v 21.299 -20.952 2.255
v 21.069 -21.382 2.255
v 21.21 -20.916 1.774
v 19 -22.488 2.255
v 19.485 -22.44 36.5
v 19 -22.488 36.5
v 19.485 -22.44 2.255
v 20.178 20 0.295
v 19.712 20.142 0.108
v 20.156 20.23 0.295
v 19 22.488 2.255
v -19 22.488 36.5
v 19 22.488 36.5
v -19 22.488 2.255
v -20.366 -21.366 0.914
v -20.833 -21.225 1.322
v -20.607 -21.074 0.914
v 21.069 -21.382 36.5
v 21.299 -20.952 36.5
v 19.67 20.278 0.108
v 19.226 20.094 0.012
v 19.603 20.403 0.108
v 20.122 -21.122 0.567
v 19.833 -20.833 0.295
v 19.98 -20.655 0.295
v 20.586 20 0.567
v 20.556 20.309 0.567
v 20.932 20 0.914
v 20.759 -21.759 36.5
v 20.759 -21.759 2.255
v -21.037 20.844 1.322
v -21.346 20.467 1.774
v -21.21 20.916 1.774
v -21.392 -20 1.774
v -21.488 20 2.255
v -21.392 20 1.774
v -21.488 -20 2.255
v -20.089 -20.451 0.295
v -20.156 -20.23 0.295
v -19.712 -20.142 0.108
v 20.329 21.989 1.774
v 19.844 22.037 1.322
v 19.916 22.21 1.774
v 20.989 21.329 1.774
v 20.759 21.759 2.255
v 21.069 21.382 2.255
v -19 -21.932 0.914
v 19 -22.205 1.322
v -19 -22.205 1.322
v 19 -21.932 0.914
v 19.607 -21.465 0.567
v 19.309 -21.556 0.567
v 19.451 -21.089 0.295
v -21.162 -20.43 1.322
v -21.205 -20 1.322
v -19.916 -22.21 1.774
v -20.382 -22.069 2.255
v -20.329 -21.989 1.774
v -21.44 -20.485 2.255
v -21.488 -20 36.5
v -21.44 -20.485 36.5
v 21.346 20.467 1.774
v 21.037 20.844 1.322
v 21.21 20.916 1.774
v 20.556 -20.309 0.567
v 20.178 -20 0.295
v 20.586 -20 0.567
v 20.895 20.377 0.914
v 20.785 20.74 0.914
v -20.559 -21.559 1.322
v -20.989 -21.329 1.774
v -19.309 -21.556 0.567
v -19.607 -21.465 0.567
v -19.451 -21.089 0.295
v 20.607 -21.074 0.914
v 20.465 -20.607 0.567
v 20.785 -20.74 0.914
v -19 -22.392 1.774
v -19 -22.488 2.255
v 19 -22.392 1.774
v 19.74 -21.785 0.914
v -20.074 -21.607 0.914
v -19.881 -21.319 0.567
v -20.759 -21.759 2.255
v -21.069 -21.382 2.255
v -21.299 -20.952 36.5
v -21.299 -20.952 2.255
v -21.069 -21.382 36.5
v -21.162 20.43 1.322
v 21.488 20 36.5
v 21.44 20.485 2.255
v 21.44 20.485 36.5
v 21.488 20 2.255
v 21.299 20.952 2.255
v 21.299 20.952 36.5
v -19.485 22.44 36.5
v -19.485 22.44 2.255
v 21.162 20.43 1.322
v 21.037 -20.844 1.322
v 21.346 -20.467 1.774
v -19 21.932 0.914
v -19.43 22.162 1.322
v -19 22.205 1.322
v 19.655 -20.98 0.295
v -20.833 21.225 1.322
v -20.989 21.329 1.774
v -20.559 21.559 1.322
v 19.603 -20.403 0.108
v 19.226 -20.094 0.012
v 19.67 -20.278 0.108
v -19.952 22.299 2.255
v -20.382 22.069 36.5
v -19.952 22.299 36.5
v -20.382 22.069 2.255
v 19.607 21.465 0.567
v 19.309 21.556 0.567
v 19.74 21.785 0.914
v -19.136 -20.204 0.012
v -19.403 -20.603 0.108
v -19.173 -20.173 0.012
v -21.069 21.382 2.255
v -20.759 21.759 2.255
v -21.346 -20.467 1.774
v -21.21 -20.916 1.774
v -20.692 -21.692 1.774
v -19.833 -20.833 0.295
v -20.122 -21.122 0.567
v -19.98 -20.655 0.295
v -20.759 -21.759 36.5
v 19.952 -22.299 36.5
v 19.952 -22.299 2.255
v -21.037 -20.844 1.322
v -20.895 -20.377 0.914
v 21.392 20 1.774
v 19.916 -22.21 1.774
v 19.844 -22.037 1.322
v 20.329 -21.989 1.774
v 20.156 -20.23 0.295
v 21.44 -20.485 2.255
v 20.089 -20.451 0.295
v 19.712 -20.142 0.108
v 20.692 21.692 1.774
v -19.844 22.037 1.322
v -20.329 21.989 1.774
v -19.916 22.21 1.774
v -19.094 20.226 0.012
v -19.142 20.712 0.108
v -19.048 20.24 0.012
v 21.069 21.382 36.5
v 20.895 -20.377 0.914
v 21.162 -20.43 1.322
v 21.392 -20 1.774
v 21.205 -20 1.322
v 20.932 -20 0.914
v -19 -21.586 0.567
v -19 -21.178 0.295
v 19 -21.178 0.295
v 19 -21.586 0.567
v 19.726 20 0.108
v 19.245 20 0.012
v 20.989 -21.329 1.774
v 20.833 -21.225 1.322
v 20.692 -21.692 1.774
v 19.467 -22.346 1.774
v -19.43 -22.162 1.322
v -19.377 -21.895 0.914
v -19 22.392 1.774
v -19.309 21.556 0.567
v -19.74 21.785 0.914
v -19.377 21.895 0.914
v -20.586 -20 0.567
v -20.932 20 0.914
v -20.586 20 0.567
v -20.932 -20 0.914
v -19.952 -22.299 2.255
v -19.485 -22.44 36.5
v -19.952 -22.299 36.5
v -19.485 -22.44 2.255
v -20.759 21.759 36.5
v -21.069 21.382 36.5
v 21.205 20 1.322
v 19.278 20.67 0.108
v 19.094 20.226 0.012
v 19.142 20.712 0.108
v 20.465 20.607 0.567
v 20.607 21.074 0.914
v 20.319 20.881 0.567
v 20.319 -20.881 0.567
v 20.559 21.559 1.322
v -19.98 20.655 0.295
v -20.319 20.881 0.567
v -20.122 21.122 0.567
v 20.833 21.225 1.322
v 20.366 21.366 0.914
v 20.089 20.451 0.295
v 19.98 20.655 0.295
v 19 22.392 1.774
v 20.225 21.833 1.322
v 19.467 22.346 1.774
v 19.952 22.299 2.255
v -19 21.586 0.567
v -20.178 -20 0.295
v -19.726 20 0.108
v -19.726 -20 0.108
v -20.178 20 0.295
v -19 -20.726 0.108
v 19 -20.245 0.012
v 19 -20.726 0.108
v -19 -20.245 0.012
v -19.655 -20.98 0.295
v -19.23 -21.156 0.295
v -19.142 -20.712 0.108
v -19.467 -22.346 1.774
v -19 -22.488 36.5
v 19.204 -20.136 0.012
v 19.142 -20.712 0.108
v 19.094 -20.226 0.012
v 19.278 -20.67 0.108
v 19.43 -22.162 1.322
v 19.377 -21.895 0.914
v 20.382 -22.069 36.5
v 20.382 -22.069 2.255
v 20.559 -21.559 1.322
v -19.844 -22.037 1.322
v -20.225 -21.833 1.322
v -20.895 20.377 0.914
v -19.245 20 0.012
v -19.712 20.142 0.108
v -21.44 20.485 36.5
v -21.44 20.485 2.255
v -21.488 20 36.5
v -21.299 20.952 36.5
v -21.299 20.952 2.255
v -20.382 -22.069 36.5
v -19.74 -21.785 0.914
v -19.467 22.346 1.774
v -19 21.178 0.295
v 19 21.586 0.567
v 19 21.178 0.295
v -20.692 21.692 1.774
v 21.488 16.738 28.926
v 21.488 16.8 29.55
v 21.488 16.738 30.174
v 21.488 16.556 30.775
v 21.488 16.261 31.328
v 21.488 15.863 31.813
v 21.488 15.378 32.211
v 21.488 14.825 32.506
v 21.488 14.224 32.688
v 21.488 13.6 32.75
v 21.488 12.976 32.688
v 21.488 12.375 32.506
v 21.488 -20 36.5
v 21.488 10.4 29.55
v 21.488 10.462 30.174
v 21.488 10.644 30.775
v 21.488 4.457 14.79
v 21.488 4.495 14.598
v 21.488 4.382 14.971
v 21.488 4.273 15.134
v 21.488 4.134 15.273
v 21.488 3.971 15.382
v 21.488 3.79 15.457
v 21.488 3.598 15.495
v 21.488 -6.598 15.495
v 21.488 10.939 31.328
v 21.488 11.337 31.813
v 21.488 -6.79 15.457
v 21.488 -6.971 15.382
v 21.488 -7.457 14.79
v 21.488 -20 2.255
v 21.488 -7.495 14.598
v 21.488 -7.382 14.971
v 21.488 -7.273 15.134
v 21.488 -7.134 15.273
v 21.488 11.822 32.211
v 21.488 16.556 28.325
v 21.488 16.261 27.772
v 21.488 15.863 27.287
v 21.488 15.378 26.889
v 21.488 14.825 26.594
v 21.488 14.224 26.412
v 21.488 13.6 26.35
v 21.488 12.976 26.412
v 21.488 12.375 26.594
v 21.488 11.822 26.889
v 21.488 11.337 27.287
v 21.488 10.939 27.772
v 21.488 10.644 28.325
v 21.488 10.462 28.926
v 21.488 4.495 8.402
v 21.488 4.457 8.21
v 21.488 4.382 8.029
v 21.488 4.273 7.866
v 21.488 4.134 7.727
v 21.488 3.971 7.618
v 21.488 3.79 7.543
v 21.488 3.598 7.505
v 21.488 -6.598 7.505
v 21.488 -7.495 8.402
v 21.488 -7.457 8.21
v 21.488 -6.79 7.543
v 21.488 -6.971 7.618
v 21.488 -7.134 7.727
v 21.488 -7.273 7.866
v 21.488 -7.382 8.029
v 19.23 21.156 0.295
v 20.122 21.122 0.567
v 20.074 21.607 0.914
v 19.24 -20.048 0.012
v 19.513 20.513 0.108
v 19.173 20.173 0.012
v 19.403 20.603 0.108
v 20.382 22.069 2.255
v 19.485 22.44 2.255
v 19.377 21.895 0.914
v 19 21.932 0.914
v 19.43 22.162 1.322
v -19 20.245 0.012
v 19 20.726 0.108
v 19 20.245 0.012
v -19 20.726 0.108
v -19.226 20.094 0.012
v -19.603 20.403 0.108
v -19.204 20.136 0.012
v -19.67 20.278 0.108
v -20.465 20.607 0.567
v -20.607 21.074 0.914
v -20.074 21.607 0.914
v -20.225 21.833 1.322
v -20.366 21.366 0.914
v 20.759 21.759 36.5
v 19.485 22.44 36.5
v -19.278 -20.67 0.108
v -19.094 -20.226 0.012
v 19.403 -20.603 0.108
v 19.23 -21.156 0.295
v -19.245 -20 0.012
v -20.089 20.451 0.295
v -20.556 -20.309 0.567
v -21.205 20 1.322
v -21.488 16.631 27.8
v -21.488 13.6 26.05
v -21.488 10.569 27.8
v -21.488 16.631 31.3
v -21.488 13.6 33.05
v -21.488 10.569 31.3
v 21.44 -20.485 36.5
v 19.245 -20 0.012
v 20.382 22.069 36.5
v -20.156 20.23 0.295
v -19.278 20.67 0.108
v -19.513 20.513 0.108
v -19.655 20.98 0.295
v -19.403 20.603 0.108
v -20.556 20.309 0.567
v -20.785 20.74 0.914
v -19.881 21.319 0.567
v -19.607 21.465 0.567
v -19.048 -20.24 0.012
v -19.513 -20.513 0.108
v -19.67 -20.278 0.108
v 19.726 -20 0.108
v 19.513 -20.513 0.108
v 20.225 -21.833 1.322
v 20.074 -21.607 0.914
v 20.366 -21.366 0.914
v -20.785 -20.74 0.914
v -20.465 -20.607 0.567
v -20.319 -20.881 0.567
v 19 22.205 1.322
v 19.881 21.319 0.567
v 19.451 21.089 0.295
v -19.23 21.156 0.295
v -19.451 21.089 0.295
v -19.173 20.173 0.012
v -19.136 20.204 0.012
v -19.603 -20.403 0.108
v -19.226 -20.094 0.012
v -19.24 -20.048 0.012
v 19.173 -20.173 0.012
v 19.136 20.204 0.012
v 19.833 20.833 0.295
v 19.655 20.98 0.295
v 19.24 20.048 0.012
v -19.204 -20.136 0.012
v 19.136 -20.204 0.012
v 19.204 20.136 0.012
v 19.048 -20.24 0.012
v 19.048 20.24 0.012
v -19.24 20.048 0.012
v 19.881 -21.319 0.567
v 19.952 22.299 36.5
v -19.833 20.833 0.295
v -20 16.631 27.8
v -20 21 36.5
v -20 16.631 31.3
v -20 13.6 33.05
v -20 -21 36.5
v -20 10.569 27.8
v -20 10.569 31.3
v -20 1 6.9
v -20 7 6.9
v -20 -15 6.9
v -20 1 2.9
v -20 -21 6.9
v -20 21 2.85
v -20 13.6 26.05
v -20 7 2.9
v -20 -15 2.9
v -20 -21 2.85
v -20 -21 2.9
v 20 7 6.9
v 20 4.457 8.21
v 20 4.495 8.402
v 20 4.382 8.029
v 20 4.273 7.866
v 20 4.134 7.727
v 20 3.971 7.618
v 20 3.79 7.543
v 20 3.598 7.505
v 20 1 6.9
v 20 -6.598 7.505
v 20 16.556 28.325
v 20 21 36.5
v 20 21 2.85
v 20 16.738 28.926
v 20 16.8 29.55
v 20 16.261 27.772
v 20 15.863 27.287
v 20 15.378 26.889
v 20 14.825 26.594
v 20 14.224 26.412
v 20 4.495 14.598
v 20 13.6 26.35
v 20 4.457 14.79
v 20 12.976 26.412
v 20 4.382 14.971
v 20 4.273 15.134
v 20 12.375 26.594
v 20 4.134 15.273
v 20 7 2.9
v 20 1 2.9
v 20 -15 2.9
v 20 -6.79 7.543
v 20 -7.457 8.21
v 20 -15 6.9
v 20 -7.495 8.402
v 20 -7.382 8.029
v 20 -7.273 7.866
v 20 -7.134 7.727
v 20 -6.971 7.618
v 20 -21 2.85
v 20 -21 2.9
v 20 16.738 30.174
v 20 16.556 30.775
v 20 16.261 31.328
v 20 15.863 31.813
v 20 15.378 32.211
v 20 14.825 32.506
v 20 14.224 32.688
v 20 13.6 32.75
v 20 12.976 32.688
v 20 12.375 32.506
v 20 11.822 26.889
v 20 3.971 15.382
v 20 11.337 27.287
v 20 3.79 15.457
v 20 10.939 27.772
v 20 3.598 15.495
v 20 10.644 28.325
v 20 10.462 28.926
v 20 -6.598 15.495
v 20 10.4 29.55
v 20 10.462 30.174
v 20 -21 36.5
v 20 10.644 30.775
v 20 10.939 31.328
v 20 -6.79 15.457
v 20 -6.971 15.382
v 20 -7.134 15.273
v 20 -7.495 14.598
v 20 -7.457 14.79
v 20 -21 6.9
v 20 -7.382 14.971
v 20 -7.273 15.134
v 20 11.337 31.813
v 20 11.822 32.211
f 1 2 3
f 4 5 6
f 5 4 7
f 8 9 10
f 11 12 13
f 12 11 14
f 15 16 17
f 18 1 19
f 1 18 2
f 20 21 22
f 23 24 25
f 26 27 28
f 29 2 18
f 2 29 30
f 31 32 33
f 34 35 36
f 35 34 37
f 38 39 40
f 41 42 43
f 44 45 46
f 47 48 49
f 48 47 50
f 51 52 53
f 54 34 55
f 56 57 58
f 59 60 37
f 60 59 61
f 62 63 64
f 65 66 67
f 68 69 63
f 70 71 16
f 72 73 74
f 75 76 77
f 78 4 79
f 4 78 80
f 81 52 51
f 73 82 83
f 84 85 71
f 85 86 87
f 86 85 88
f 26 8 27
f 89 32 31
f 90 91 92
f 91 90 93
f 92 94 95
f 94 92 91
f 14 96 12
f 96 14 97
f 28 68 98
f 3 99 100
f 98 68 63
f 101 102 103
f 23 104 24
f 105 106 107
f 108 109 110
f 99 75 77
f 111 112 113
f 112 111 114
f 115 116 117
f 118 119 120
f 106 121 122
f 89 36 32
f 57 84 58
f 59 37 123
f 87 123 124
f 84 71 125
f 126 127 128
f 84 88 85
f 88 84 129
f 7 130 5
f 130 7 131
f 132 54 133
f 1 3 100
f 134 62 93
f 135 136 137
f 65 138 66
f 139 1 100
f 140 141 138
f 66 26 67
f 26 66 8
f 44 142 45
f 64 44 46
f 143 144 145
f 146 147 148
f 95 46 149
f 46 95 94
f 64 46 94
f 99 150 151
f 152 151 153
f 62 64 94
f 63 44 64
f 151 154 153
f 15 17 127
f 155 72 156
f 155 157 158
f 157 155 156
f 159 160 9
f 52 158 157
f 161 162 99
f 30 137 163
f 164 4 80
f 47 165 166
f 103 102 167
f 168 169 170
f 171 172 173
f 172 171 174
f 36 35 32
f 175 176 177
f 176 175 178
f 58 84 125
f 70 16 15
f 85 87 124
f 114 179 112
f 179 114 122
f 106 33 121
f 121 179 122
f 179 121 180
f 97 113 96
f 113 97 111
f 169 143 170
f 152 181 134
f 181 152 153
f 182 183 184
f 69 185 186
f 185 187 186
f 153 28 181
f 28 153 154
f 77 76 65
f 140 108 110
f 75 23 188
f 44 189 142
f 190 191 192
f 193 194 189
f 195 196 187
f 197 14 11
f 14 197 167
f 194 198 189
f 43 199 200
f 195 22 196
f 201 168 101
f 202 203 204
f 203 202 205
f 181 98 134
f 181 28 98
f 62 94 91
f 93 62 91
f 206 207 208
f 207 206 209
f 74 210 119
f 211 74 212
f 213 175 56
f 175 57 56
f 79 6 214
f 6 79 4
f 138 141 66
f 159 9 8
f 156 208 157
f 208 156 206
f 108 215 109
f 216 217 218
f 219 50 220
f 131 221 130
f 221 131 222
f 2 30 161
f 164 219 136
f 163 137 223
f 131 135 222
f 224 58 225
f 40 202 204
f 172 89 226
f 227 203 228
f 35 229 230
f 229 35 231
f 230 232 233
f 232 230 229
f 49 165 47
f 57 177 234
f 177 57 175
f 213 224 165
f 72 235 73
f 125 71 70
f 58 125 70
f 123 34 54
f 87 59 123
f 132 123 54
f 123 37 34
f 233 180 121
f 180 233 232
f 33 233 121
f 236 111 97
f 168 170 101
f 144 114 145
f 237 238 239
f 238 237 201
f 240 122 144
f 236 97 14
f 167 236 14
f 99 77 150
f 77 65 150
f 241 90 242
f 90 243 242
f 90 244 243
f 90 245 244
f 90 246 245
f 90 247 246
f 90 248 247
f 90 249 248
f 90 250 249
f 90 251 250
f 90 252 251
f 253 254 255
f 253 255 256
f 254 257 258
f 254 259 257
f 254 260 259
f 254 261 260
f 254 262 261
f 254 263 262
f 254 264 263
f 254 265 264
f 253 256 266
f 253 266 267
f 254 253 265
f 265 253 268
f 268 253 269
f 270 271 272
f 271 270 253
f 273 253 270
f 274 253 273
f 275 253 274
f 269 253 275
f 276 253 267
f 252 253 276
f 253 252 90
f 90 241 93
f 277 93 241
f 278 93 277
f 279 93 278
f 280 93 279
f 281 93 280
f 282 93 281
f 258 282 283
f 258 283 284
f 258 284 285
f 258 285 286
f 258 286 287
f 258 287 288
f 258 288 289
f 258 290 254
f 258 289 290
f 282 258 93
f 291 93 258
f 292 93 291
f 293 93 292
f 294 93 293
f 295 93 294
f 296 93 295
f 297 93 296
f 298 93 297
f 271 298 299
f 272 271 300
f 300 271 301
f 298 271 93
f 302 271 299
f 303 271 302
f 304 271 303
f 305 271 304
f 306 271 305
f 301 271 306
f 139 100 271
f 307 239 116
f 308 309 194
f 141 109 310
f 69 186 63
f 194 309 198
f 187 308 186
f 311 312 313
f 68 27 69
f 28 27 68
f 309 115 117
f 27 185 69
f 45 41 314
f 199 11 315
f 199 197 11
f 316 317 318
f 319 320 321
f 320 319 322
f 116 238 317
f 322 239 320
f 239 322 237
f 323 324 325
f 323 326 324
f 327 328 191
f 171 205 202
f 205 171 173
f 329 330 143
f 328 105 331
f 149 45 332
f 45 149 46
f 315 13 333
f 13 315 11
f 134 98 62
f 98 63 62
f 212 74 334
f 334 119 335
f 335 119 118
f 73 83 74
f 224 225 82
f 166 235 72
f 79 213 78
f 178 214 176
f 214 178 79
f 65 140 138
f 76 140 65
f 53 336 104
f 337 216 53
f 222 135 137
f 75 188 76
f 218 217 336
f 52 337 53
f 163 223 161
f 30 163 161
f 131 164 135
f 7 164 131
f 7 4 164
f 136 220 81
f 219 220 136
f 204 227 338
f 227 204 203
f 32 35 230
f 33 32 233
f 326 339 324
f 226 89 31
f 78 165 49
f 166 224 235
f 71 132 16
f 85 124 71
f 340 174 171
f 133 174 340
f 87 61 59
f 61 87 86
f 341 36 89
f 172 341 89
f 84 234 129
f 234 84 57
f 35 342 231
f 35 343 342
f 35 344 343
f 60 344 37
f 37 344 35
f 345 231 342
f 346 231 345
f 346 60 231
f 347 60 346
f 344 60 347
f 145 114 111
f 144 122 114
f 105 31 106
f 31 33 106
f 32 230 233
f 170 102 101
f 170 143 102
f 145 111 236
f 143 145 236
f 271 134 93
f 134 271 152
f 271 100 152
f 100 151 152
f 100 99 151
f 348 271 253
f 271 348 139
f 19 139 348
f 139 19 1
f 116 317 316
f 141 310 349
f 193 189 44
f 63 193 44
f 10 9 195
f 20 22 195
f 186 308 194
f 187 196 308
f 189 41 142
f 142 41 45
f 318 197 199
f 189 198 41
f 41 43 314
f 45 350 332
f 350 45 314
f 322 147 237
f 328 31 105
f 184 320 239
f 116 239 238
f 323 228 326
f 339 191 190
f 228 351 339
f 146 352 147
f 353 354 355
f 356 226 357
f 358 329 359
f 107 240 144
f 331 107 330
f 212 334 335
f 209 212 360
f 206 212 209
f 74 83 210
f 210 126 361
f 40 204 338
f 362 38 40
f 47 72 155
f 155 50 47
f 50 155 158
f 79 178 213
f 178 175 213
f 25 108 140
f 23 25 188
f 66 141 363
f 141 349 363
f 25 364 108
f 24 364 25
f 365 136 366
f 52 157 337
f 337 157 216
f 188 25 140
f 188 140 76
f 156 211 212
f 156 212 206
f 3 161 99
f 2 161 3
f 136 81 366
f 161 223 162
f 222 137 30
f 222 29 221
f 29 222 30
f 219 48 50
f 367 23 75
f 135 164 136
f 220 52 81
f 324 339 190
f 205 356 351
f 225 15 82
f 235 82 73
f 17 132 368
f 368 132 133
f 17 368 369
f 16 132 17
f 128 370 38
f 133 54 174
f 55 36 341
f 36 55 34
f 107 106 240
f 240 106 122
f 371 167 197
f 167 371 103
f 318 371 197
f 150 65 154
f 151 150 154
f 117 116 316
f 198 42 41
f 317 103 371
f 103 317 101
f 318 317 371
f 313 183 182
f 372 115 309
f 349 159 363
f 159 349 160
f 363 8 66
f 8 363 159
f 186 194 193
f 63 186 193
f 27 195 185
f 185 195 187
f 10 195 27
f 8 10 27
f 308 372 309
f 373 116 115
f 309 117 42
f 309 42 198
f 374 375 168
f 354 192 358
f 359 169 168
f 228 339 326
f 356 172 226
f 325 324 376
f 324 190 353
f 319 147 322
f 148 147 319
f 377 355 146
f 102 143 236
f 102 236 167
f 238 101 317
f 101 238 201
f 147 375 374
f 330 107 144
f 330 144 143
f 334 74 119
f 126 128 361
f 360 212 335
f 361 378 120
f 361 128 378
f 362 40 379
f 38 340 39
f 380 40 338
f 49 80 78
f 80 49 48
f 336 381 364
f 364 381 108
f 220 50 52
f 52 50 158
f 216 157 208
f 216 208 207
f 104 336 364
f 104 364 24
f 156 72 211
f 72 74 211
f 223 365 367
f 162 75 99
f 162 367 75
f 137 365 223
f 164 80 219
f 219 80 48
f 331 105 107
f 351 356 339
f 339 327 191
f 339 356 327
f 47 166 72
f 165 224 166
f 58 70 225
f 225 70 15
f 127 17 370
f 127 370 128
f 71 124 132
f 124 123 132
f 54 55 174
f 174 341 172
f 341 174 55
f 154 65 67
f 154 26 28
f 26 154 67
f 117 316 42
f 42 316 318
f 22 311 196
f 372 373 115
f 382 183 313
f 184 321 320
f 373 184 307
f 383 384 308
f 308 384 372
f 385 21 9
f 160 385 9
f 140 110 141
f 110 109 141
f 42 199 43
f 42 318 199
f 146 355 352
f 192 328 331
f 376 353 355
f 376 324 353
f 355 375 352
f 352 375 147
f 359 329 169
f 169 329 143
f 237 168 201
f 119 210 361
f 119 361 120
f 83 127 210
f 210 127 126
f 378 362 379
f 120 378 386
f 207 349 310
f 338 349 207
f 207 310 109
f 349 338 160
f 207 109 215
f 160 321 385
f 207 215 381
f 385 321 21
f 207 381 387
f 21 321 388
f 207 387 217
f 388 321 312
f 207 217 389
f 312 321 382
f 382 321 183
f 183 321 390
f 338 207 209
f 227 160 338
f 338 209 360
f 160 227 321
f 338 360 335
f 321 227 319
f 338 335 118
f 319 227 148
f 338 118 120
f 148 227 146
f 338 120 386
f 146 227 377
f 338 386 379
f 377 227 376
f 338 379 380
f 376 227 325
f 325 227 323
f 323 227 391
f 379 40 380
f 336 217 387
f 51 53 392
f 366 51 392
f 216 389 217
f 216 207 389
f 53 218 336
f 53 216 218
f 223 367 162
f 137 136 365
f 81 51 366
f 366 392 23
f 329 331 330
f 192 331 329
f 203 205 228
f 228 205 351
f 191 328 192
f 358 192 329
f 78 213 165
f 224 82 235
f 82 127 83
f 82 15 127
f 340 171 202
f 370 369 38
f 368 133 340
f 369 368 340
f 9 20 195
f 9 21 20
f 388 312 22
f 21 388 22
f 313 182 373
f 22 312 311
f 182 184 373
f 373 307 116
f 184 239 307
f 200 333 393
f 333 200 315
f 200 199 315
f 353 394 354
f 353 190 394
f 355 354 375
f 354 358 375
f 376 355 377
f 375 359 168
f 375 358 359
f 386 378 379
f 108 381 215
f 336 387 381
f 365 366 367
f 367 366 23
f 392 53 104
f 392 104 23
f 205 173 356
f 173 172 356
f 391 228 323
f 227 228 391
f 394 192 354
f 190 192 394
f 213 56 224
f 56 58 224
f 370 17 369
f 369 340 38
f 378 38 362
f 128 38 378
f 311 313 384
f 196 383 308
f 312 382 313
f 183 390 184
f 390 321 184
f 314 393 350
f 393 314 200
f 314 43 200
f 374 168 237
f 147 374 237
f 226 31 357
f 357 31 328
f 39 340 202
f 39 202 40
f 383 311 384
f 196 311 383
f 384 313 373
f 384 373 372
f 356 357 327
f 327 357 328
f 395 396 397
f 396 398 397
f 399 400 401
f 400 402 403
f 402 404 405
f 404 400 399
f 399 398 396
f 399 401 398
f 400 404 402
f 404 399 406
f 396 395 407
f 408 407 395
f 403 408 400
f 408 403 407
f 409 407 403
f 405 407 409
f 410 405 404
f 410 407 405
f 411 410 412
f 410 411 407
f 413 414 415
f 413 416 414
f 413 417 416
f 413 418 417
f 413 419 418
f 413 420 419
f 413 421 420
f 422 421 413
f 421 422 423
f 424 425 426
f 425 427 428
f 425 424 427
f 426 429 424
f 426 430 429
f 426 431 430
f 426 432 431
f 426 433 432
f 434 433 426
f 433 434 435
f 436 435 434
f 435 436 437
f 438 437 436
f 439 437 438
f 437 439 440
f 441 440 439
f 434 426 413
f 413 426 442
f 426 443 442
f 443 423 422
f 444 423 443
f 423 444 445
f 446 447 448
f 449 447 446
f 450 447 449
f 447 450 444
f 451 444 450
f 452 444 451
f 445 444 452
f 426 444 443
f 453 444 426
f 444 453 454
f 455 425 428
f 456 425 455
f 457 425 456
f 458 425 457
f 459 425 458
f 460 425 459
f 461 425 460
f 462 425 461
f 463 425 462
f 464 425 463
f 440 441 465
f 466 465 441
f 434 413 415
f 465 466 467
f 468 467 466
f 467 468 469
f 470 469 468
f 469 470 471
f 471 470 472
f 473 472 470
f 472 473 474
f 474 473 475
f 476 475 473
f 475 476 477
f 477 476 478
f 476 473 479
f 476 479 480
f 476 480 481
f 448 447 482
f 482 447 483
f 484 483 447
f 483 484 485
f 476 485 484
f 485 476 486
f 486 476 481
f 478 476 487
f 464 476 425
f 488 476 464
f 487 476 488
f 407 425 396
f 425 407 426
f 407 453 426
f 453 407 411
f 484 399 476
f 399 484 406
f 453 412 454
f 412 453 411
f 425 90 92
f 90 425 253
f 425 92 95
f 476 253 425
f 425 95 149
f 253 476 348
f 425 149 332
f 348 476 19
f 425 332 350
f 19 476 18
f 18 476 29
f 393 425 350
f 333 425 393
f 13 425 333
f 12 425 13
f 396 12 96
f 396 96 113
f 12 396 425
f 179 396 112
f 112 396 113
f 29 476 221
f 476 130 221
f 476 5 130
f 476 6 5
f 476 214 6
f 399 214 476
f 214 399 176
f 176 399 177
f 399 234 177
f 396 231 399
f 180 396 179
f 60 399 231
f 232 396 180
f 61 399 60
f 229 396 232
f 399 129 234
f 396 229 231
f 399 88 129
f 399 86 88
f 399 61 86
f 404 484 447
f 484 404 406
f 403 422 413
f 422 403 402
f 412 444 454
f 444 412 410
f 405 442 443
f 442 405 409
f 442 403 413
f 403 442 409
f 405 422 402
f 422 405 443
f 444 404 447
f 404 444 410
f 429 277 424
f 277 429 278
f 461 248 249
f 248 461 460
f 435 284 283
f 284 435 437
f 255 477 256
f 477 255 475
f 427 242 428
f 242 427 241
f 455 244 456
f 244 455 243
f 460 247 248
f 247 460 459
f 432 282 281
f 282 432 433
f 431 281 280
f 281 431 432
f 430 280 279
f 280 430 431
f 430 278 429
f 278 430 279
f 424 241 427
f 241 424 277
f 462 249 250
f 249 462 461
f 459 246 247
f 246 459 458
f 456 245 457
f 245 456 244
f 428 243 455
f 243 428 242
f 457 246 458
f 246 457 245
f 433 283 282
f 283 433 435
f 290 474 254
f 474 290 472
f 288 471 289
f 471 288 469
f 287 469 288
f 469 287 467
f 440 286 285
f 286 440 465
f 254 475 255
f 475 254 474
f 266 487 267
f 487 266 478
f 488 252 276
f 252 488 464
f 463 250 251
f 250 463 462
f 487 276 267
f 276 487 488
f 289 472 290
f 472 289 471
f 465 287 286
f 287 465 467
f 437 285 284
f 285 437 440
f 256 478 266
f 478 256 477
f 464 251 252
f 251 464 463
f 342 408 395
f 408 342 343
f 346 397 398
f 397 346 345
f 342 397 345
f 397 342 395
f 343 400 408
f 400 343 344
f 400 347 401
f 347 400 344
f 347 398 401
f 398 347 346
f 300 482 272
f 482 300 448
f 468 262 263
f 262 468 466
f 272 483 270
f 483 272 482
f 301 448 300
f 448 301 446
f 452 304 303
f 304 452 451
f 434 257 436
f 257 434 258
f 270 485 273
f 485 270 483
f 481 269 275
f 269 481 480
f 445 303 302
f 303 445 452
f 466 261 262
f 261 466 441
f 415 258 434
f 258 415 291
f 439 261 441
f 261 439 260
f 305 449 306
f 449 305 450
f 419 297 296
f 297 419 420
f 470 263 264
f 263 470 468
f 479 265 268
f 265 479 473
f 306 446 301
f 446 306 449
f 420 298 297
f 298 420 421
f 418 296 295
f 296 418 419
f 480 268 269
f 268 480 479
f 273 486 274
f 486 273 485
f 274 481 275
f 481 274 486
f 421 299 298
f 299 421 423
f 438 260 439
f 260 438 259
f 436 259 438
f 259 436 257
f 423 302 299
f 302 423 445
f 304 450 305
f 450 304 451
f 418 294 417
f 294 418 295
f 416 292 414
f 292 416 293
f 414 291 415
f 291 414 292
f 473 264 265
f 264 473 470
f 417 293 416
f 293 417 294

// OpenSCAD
union() // SharpSCAD generated scene: bottom
{
  { // module: bottom
    color( c= "white" )
    {
      difference()
      {
        union()
        {
          translate( v= [ 0, 0, 19.5 ] )
          {
            difference()
            {
              { // module: roundedcube
                translate( v= [ -21.5, -22.5, -19.5 ] )
                {
                  translate( v= [ 0, 0, 0 ] )
                  {
                    hull()
                    {
                      translate( v= [ 2.5, 2.5, 2.5 ] )
                      {
                        sphere( r= 2.5, $fn= 32 );
                      }
                      translate( v= [ 2.5, 42.5, 2.5 ] )
                      {
                        sphere( r= 2.5, $fn= 32 );
                      }
                      translate( v= [ 2.5, 2.5, 36.5 ] )
                      {
                        sphere( r= 2.5, $fn= 32 );
                      }
                      translate( v= [ 2.5, 42.5, 36.5 ] )
                      {
                        sphere( r= 2.5, $fn= 32 );
                      }
                      translate( v= [ 40.5, 2.5, 2.5 ] )
                      {
                        sphere( r= 2.5, $fn= 32 );
                      }
                      translate( v= [ 40.5, 42.5, 2.5 ] )
                      {
                        sphere( r= 2.5, $fn= 32 );
                      }
                      translate( v= [ 40.5, 2.5, 36.5 ] )
                      {
                        sphere( r= 2.5, $fn= 32 );
                      }
                      translate( v= [ 40.5, 42.5, 36.5 ] )
                      {
                        sphere( r= 2.5, $fn= 32 );
                      }
                      union()
                      {
                      }
                    }
                  }
                }
              }
              translate( v= [ 0, 0, 1.6 ] )
              {
                cube( size= [ 40, 42, 36.5 ], center= true );
              }
              translate( v= [ 0, 0, 47 ] )
              {
                cube( size= 60, center= true );
              }
            }
          }
          translate( v= [ 0, -7, 4.9 ] )
          {
            difference()
            {
              cube( size= [ 40, 28, 4 ], center= true );
              cube( size= [ 40.1, 16, 4.1 ], center= true );
            }
          }
        }
        translate( v= [ -21.5, 13.6, 29.55 ] )
        {
          rotate( a= [ 0, 90, 0 ] )
          {
            union()
            {
              translate( v= [ 0, 0, 39.3 ] )
              {
                cylinder( r= 3.2, $fn= 32, h= 4 );
              }
              cylinder( r= 2, $fn= 32, h= 43.1 );
            }
          }
        }
        translate( v= [ -21.5, 13.6, 29.55 ] )
        {
          rotate( a= [ 0, 90, 0 ] )
          {
            cylinder( r= 3.5, $fn= 6, h= 3 );
          }
        }
        translate( v= [ 21, -1.5, 11.5 ] )
        {
          { // module: roundedcube
            translate( v= [ -20, -6, -4 ] )
            {
              translate( v= [ 0, 0, 0 ] )
              {
                hull()
                {
                  translate( v= [ 1, 1, 1 ] )
                  {
                    sphere( r= 1, $fn= 32 );
                  }
                  translate( v= [ 1, 11, 1 ] )
                  {
                    sphere( r= 1, $fn= 32 );
                  }
                  translate( v= [ 1, 1, 7 ] )
                  {
                    sphere( r= 1, $fn= 32 );
                  }
                  translate( v= [ 1, 11, 7 ] )
                  {
                    sphere( r= 1, $fn= 32 );
                  }
                  translate( v= [ 39, 1, 1 ] )
                  {
                    sphere( r= 1, $fn= 32 );
                  }
                  translate( v= [ 39, 11, 1 ] )
                  {
                    sphere( r= 1, $fn= 32 );
                  }
                  translate( v= [ 39, 1, 7 ] )
                  {
                    sphere( r= 1, $fn= 32 );
                  }
                  translate( v= [ 39, 11, 7 ] )
                  {
                    sphere( r= 1, $fn= 32 );
                  }
                  union()
                  {
                  }
                }
              }
            }
          }
        }
      }
    }
  }
}
